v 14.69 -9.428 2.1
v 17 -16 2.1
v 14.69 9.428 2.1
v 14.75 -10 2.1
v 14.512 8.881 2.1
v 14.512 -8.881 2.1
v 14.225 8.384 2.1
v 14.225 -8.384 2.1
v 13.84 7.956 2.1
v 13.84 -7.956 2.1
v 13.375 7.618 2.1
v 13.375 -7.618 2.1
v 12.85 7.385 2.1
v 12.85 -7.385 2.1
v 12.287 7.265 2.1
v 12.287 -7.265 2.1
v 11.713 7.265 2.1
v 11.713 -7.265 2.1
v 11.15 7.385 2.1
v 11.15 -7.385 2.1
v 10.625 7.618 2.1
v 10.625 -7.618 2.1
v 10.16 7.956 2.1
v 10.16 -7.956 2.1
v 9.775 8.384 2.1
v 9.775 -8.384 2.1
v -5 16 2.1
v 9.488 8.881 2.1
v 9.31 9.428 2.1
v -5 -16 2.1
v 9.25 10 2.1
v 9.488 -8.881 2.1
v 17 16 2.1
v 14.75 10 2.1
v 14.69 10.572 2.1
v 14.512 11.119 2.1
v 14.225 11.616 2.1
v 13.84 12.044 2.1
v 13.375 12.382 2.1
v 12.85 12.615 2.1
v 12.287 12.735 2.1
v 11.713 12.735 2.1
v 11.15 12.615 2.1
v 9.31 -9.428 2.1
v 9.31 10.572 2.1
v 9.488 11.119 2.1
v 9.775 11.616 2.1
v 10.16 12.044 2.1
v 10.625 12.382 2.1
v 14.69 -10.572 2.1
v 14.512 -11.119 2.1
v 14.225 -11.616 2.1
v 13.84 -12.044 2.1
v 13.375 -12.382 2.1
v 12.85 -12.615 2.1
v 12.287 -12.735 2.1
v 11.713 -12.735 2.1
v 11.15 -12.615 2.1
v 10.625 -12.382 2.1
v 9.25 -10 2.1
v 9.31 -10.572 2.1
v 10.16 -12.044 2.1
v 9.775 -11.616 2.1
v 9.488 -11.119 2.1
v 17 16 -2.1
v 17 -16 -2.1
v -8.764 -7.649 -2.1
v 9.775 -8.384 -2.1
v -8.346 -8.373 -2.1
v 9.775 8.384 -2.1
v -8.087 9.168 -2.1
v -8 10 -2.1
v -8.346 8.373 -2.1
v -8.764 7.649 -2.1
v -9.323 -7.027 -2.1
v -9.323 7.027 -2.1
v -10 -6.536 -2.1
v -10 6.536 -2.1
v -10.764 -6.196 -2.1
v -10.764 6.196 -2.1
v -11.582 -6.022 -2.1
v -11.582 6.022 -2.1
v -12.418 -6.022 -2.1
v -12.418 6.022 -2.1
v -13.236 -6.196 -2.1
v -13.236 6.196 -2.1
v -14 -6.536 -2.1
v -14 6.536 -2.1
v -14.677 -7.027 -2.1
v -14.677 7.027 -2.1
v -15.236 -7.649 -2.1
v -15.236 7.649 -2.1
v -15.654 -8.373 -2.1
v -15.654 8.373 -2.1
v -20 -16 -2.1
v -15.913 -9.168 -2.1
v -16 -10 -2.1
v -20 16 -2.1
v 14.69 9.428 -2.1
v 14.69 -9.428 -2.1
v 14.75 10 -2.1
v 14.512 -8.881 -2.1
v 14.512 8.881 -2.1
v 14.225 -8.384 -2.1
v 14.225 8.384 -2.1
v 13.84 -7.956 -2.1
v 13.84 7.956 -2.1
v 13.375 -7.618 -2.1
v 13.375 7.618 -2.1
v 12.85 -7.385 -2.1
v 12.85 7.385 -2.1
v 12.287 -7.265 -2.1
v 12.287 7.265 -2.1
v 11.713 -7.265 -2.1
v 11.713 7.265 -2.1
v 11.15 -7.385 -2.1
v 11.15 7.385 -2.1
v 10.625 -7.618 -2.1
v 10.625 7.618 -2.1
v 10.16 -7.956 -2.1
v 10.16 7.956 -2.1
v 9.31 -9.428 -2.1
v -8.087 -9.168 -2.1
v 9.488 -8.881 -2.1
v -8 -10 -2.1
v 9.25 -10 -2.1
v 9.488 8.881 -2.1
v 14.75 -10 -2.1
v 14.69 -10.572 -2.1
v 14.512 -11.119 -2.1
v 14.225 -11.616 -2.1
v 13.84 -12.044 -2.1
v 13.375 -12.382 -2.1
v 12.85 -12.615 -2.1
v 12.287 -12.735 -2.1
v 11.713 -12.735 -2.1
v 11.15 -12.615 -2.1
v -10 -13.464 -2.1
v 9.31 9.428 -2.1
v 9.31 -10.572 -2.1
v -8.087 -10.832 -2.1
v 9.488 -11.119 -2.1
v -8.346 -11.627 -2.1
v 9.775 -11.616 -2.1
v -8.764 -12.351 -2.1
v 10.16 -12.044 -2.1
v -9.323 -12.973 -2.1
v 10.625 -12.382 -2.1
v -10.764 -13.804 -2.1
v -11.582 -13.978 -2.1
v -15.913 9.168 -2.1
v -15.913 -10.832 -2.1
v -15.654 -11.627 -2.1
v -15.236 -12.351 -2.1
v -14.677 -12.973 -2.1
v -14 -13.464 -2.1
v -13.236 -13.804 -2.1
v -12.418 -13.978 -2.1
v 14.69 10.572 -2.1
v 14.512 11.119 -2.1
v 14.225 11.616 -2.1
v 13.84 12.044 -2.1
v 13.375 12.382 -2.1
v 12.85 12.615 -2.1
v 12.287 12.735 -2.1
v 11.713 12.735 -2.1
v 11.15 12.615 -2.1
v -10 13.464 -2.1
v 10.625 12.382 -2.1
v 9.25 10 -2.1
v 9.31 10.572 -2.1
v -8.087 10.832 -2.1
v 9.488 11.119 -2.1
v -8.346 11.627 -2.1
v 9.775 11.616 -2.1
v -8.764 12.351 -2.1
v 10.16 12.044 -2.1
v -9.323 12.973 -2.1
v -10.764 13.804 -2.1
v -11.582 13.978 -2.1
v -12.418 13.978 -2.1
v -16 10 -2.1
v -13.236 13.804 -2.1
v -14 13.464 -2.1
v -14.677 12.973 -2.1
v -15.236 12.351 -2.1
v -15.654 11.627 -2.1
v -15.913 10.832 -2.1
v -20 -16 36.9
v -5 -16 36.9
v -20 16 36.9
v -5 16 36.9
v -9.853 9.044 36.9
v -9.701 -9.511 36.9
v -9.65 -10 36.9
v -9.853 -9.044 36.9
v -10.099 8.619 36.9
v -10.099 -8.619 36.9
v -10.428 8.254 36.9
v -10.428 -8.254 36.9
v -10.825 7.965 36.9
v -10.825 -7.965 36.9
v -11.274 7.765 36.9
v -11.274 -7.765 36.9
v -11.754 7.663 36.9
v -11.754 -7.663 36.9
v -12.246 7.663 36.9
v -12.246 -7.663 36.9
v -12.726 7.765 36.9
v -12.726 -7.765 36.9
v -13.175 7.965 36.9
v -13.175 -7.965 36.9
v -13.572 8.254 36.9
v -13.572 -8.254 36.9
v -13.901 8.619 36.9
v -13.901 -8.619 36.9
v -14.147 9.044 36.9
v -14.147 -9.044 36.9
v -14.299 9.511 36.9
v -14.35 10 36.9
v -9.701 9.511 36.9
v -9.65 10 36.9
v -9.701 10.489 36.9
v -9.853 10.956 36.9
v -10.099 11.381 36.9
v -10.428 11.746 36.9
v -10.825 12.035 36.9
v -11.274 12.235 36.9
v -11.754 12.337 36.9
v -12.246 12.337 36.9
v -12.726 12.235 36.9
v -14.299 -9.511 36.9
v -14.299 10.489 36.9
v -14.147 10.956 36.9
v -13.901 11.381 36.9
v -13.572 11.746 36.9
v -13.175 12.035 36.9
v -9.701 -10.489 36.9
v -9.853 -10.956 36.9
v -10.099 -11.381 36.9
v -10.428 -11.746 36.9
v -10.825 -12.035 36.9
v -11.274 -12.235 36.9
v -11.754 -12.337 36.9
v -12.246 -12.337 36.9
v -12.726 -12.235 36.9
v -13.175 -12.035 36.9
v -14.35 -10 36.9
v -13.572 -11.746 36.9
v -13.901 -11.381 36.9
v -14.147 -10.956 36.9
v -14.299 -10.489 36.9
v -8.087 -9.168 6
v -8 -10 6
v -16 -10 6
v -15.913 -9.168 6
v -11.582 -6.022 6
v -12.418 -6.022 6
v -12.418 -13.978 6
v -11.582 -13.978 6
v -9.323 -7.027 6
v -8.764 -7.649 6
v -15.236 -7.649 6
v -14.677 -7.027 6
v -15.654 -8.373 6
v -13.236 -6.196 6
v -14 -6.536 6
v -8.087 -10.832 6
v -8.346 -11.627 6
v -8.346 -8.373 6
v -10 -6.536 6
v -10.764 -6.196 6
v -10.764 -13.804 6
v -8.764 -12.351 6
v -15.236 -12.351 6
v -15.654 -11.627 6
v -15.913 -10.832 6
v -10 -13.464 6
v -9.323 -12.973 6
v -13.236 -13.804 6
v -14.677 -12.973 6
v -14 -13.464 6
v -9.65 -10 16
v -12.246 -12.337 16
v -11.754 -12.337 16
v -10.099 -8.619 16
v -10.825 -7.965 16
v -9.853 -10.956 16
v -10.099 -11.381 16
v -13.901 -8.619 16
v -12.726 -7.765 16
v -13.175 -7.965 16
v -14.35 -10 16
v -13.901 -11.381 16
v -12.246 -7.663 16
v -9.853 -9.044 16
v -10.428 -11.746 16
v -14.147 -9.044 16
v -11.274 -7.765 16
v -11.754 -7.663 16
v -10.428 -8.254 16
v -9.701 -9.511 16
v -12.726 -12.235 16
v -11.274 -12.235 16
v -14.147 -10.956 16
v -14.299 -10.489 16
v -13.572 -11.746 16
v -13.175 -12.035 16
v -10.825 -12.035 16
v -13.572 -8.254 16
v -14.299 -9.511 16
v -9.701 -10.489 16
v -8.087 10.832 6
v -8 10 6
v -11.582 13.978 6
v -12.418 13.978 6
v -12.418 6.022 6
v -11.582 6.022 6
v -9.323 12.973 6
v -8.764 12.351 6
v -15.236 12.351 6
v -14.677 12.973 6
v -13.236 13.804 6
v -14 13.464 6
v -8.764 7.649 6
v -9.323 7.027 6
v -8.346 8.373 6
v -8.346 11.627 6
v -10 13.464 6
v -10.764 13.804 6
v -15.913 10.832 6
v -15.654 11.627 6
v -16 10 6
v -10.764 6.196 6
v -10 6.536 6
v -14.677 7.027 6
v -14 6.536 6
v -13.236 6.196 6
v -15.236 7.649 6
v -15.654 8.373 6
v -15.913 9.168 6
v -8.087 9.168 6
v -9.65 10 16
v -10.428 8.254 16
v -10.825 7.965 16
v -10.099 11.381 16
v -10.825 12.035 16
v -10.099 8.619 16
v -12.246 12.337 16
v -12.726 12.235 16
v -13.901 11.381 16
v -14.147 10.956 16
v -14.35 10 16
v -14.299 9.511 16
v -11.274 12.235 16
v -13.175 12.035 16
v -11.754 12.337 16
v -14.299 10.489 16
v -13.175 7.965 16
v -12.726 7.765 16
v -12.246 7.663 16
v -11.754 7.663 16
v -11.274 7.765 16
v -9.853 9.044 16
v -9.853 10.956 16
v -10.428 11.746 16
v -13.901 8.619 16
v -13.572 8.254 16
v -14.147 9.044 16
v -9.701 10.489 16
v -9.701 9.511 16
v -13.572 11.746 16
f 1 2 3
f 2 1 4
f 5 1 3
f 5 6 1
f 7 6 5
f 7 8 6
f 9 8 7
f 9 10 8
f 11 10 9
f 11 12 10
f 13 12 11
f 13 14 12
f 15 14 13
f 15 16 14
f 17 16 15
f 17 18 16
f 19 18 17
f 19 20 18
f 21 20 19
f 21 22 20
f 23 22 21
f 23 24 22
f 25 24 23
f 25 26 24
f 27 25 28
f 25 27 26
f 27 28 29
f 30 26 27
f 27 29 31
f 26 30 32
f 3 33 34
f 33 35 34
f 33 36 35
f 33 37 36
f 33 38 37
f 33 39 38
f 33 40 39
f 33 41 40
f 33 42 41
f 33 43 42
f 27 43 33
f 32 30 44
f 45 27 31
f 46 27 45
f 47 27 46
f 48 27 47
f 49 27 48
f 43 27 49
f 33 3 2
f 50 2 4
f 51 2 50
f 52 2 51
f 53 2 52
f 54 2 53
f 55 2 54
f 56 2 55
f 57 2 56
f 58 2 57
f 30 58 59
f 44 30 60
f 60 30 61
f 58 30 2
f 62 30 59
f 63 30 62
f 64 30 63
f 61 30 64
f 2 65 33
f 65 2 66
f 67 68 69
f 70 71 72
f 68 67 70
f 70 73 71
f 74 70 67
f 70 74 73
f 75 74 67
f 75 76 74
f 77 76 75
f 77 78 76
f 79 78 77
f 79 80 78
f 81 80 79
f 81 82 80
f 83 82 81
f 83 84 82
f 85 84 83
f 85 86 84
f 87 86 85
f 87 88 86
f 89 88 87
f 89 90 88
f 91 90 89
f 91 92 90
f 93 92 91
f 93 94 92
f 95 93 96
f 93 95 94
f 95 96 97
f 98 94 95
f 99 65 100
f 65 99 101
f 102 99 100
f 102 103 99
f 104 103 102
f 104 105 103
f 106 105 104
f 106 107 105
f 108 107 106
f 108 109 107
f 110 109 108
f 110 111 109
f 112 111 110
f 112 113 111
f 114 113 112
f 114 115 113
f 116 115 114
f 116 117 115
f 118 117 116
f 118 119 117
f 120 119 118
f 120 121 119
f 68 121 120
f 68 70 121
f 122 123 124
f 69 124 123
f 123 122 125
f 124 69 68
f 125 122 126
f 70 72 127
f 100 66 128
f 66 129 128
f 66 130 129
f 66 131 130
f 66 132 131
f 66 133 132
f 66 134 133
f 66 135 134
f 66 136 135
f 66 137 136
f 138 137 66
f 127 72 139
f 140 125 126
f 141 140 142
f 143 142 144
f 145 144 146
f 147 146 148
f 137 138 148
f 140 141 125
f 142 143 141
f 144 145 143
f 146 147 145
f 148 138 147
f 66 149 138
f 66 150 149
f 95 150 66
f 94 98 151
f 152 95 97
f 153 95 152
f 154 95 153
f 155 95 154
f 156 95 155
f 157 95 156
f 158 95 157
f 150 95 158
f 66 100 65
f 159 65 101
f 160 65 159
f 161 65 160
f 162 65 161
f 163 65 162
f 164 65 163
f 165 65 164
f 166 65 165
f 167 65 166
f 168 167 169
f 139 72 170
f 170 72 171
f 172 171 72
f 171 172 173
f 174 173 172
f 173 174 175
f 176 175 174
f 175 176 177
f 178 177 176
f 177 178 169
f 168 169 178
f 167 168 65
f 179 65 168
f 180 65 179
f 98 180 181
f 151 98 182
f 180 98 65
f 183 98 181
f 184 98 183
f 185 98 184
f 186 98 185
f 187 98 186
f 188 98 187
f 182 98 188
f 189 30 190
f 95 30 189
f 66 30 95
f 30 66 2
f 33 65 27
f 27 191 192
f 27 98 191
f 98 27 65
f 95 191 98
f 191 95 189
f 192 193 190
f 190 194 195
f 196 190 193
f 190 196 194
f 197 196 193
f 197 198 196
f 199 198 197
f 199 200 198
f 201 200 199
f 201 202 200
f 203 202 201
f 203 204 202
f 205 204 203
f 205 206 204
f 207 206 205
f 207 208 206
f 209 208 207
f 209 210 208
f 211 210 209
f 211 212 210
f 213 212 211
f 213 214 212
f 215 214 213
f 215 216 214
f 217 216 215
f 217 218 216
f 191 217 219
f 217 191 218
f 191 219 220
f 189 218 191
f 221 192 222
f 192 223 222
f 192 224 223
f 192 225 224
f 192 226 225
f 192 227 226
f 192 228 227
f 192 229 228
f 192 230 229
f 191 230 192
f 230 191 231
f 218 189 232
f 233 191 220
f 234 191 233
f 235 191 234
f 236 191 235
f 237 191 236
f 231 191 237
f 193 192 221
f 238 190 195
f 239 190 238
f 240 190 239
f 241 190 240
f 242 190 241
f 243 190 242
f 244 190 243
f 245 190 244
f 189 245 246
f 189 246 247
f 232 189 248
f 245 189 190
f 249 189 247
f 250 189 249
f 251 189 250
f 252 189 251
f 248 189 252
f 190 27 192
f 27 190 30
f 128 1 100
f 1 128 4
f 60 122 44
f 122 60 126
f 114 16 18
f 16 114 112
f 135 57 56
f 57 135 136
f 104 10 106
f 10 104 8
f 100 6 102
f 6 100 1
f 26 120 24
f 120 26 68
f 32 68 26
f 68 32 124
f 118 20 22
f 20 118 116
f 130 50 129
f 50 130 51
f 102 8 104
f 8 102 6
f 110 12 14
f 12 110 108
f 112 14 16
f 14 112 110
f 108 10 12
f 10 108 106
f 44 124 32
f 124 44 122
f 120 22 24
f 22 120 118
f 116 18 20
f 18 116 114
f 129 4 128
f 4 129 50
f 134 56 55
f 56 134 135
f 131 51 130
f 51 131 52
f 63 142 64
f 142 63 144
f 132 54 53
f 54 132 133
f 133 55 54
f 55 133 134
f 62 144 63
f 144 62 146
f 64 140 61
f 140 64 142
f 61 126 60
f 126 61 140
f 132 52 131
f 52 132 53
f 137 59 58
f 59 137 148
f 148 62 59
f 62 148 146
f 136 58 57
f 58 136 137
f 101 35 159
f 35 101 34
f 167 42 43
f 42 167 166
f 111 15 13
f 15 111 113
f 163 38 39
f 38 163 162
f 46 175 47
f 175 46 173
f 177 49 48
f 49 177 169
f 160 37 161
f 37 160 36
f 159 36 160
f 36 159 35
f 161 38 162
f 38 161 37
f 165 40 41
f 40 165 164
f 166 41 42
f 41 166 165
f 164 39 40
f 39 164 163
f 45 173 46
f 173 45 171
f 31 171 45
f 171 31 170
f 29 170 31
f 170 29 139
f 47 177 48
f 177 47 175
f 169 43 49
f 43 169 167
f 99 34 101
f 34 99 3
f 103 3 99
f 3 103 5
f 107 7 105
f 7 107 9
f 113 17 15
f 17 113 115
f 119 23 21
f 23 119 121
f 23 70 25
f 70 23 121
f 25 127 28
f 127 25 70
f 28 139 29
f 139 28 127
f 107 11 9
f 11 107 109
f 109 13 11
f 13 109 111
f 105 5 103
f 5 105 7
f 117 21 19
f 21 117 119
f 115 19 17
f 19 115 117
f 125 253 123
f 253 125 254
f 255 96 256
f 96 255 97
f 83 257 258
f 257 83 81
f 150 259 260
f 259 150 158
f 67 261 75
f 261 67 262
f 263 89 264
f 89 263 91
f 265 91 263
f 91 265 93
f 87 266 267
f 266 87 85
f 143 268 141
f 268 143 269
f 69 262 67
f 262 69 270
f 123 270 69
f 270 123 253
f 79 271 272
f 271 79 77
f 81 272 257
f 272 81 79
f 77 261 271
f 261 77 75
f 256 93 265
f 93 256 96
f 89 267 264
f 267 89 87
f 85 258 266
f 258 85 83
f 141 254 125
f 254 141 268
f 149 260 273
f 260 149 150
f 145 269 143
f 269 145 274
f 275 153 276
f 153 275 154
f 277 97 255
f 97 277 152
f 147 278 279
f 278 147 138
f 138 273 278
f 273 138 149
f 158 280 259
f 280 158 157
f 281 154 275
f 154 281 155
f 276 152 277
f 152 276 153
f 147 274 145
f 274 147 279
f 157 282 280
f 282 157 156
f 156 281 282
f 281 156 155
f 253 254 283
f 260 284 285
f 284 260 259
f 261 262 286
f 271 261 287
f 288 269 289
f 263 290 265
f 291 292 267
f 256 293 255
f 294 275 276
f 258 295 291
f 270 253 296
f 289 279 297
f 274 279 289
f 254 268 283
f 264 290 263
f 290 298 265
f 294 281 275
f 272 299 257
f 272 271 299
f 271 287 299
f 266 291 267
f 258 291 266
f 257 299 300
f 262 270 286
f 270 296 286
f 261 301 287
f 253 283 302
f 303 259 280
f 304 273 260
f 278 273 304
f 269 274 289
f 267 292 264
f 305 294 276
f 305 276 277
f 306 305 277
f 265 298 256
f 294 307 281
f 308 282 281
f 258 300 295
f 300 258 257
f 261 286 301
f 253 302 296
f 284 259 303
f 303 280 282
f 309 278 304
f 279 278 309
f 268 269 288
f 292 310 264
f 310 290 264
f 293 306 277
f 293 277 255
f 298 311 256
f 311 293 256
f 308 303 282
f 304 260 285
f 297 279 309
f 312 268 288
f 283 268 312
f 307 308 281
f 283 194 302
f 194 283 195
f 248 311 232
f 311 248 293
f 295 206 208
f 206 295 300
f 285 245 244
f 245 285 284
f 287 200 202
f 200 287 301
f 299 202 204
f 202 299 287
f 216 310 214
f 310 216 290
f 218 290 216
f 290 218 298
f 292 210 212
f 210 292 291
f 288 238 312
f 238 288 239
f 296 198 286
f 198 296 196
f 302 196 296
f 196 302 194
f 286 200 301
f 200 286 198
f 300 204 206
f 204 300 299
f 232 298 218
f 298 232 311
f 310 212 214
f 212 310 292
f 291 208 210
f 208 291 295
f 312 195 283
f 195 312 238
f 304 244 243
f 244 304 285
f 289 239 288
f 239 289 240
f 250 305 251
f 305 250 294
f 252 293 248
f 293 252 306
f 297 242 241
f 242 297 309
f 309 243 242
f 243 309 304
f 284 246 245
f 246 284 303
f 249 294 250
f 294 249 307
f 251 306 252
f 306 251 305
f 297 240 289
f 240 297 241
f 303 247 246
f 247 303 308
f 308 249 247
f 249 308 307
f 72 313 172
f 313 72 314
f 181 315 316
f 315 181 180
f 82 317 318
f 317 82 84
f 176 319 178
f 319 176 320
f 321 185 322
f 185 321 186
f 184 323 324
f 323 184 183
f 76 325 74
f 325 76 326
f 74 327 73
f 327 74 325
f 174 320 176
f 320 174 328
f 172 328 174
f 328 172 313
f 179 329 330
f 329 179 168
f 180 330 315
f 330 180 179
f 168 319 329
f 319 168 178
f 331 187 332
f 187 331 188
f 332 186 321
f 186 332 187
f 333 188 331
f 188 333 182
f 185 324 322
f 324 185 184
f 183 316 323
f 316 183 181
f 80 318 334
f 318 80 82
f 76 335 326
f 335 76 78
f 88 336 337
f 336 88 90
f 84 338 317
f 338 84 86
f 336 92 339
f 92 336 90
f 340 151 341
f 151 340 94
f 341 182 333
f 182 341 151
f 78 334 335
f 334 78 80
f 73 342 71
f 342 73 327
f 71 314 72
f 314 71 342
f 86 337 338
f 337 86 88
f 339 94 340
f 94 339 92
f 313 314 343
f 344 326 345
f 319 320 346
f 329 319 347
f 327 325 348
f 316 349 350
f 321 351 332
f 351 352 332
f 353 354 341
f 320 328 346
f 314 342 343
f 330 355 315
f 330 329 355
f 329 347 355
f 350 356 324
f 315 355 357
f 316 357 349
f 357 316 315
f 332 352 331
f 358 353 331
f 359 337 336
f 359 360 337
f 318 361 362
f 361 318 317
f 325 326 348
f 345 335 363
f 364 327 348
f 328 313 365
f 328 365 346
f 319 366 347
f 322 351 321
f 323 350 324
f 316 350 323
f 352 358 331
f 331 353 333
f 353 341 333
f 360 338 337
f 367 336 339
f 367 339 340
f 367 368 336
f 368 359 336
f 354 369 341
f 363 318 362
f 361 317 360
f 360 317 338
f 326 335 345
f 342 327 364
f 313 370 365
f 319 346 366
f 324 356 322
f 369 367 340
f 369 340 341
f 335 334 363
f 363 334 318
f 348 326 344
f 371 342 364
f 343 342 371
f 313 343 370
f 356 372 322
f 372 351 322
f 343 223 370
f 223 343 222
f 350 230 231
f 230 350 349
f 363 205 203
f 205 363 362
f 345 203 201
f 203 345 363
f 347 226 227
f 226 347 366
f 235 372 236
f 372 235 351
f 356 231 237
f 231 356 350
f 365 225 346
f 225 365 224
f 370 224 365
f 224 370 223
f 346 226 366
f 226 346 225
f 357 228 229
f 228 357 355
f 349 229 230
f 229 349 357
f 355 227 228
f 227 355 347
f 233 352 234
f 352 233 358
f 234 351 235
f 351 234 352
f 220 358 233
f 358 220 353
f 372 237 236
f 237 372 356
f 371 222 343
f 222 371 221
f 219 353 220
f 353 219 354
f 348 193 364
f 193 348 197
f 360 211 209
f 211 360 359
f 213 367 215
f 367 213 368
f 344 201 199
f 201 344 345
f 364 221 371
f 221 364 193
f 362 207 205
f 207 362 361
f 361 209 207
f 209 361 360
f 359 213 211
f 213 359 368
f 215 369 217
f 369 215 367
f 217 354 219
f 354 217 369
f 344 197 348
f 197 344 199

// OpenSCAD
$fn=30;

height = 39;

difference() {
    union() {
cube([34,32,4.2],center=true);
        translate([-12.5,0,height/2 - 4.2/2]) {
cube([15,32,height],center=true);
        }
    }

translate([-12,0,0]) {
    
    translate([0,-10,-4]) {
    cylinder(d=8,h=10);
    }
    
    translate([0,-10,6]) {
    cylinder(d1=8,d2=4.7,h=10);
    }
    
    translate([0,-10,-3]) {
        cylinder(d=4.7,h=40);
    }

    translate([0,10,-4]) {
        cylinder(d=8,h=10);
    }
    
    translate([0,10,6]) {
        cylinder(d1=8,d2=4.7,h=10);
    }
    
    translate([0,10,-3]) {
        cylinder(d=4.7,h=40);
    }
}


translate([12,0,0]) {
translate([0,-10,-3]) {
cylinder(d=5.5,h=6);
}

translate([0,10,-3]) {
cylinder(d=5.5,h=6);

}
}
}
